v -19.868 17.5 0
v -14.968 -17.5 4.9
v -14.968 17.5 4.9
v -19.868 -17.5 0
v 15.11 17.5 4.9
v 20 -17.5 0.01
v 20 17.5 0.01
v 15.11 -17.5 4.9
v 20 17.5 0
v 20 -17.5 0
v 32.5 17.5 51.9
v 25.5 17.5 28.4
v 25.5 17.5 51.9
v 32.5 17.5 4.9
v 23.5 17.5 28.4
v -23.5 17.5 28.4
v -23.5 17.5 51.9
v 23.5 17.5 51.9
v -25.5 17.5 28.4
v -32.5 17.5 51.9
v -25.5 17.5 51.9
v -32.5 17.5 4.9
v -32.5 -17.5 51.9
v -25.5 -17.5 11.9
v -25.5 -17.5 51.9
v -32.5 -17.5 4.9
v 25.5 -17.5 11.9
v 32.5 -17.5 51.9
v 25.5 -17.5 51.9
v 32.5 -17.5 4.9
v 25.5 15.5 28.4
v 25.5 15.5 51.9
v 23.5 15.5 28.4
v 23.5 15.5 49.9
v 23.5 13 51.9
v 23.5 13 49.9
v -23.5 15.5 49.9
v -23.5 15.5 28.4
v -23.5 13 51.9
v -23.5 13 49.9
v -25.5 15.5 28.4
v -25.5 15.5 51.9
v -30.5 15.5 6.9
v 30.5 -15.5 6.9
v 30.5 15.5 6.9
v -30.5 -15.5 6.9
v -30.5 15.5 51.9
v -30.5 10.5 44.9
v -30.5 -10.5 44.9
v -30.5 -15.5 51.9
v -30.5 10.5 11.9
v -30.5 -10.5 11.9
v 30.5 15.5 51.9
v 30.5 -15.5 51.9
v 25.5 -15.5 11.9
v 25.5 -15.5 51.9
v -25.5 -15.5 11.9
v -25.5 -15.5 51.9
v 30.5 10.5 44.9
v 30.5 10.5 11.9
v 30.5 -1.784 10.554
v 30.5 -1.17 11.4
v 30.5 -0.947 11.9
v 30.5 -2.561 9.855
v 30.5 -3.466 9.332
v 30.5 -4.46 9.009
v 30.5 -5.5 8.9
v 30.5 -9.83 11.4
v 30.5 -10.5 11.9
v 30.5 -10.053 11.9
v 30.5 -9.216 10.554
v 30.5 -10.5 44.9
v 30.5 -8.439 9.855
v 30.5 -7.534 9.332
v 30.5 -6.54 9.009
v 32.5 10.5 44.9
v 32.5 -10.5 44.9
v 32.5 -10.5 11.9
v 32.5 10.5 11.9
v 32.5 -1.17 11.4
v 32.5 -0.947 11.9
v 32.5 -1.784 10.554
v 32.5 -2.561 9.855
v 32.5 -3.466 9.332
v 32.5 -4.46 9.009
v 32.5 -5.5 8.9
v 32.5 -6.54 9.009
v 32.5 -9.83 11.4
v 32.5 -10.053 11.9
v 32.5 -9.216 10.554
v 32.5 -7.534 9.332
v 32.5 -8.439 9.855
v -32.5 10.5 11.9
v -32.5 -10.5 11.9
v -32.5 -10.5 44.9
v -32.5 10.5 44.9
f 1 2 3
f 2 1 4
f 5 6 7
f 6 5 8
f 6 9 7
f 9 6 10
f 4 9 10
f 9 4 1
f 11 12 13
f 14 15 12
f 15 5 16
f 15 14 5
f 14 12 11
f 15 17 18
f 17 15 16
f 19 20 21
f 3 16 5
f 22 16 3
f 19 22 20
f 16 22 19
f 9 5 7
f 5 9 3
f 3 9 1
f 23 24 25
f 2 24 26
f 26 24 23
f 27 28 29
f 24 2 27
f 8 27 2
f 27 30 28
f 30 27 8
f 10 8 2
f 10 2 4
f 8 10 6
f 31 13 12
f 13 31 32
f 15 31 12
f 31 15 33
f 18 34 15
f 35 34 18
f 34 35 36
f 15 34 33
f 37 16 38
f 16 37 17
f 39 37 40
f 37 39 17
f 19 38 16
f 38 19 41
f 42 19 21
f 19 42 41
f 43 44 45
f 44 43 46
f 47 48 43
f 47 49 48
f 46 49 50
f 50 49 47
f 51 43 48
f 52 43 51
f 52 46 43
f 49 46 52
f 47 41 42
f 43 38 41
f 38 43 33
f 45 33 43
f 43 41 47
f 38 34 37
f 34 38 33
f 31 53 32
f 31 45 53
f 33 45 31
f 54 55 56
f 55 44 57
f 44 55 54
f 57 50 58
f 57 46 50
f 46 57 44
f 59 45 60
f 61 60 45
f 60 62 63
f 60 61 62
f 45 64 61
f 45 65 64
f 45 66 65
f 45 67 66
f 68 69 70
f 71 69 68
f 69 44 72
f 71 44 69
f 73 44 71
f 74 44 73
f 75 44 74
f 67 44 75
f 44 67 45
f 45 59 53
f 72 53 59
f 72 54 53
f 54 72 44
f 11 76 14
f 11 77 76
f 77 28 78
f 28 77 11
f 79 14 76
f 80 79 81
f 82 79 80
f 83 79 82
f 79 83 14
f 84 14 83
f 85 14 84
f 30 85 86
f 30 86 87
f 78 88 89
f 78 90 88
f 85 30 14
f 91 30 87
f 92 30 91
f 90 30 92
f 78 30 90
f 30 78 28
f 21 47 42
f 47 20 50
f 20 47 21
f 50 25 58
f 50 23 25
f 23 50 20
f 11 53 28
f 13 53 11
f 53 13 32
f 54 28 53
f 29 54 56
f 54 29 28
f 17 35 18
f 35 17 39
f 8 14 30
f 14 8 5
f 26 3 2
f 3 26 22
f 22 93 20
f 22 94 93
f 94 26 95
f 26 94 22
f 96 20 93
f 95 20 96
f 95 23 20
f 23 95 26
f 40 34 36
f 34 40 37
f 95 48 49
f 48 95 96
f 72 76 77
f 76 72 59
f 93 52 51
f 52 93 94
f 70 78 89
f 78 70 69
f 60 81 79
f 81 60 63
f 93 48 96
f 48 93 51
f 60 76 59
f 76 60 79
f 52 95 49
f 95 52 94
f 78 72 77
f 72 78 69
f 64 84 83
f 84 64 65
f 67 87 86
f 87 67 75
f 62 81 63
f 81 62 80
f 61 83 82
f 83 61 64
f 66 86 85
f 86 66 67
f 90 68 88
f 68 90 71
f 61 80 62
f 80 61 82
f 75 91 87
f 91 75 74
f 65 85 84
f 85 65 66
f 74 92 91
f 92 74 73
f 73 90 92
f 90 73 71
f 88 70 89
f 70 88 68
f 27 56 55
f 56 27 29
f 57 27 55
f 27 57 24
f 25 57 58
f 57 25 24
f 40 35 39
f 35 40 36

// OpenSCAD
/**
*
*	A tripod mount adapter for a GoPro Hero2
*
*    Copyright (C) 2021 John Winans
*
*    This program is free software: you can redistribute it and/or modify
*    it under the terms of the GNU General Public License as published by
*    the Free Software Foundation, either version 3 of the License, or
*    (at your option) any later version.
*
*    This program is distributed in the hope that it will be useful,
*    but WITHOUT ANY WARRANTY; without even the implied warranty of
*    MERCHANTABILITY or FITNESS FOR A PARTICULAR PURPOSE.  See the
*    GNU General Public License for more details.
*
*    You should have received a copy of the GNU General Public License
*    along with this program.  If not, see <https://www.gnu.org/licenses/>.
*
*********************************************************************************/


base();
translate([0, 0, 4.9]) goproclamp();

module base()
{
    x = 40;
    y = 35;
    z = 10;
    
    translate([-x/2, -y/2, 0])
    difference()
    {
        cube([40, y, 5]);
        translate([-9, 0, 5.01]) wedge();
        translate([40-5, 0, 5.01]) wedge();
    }
}

module wedge()
{
    difference()
    {
        translate([0, -.5, 0]) rotate([0, 45, 0]) cube([10, 51, 10]);
        translate([0, -.1, 0]) cube([sqrt(100*100+100*100), 52, 10]);
    }
}


module goproclamp(clipon=true)
{
    // the camera dimensions
    x = 61;
    y = 31;
    z = 43;
    wt = 2;     // the wall thickness
    is = wt+5;     // insets
    
    // outer ox dimenstions
    ox = x+2*wt;
    oy = y+2*wt;
    oz = z+2*wt;
    
    translate([-ox/2, -oy/2, 0])
    difference()
    {
        cube([ox, oy, oz]);
        translate([wt, wt, wt]) cube([x, y, z]);    // camera volume
        
        translate([-.5, is, is]) cube([ox+1, oy-is*2, oz-is*2]); // open the ends

        // cut out some room for the mic jack
        translate([ox,12,9])
            rotate([0,90,0]) cylinder(d=10, h=10, $fn=30, center=true);
        
        if (clipon)
        {
            translate([ox-is-2, oy-wt*2-1, oz/2]) cube([2, wt*2+2, oz]);
            translate([is, oy-wt*2-1, oz/2]) cube([2, wt*2+2, oz]);
            translate([wt, wt, wt]) cube([is, y, z+wt+1]);
            translate([ox-is-2, wt, wt]) cube([is, y, z+wt+1]);

        }
        else
        {
            translate([wt, wt, wt]) cube([x, y, z+wt+1]);    
            translate([is, -.5, is+wt]) cube([ox-is*2, oy+1, oz-is*2]); // y
        }
        translate([is, -.5, is]) cube([ox-is*2, oy-wt*2, z]); // lens
    }
}
